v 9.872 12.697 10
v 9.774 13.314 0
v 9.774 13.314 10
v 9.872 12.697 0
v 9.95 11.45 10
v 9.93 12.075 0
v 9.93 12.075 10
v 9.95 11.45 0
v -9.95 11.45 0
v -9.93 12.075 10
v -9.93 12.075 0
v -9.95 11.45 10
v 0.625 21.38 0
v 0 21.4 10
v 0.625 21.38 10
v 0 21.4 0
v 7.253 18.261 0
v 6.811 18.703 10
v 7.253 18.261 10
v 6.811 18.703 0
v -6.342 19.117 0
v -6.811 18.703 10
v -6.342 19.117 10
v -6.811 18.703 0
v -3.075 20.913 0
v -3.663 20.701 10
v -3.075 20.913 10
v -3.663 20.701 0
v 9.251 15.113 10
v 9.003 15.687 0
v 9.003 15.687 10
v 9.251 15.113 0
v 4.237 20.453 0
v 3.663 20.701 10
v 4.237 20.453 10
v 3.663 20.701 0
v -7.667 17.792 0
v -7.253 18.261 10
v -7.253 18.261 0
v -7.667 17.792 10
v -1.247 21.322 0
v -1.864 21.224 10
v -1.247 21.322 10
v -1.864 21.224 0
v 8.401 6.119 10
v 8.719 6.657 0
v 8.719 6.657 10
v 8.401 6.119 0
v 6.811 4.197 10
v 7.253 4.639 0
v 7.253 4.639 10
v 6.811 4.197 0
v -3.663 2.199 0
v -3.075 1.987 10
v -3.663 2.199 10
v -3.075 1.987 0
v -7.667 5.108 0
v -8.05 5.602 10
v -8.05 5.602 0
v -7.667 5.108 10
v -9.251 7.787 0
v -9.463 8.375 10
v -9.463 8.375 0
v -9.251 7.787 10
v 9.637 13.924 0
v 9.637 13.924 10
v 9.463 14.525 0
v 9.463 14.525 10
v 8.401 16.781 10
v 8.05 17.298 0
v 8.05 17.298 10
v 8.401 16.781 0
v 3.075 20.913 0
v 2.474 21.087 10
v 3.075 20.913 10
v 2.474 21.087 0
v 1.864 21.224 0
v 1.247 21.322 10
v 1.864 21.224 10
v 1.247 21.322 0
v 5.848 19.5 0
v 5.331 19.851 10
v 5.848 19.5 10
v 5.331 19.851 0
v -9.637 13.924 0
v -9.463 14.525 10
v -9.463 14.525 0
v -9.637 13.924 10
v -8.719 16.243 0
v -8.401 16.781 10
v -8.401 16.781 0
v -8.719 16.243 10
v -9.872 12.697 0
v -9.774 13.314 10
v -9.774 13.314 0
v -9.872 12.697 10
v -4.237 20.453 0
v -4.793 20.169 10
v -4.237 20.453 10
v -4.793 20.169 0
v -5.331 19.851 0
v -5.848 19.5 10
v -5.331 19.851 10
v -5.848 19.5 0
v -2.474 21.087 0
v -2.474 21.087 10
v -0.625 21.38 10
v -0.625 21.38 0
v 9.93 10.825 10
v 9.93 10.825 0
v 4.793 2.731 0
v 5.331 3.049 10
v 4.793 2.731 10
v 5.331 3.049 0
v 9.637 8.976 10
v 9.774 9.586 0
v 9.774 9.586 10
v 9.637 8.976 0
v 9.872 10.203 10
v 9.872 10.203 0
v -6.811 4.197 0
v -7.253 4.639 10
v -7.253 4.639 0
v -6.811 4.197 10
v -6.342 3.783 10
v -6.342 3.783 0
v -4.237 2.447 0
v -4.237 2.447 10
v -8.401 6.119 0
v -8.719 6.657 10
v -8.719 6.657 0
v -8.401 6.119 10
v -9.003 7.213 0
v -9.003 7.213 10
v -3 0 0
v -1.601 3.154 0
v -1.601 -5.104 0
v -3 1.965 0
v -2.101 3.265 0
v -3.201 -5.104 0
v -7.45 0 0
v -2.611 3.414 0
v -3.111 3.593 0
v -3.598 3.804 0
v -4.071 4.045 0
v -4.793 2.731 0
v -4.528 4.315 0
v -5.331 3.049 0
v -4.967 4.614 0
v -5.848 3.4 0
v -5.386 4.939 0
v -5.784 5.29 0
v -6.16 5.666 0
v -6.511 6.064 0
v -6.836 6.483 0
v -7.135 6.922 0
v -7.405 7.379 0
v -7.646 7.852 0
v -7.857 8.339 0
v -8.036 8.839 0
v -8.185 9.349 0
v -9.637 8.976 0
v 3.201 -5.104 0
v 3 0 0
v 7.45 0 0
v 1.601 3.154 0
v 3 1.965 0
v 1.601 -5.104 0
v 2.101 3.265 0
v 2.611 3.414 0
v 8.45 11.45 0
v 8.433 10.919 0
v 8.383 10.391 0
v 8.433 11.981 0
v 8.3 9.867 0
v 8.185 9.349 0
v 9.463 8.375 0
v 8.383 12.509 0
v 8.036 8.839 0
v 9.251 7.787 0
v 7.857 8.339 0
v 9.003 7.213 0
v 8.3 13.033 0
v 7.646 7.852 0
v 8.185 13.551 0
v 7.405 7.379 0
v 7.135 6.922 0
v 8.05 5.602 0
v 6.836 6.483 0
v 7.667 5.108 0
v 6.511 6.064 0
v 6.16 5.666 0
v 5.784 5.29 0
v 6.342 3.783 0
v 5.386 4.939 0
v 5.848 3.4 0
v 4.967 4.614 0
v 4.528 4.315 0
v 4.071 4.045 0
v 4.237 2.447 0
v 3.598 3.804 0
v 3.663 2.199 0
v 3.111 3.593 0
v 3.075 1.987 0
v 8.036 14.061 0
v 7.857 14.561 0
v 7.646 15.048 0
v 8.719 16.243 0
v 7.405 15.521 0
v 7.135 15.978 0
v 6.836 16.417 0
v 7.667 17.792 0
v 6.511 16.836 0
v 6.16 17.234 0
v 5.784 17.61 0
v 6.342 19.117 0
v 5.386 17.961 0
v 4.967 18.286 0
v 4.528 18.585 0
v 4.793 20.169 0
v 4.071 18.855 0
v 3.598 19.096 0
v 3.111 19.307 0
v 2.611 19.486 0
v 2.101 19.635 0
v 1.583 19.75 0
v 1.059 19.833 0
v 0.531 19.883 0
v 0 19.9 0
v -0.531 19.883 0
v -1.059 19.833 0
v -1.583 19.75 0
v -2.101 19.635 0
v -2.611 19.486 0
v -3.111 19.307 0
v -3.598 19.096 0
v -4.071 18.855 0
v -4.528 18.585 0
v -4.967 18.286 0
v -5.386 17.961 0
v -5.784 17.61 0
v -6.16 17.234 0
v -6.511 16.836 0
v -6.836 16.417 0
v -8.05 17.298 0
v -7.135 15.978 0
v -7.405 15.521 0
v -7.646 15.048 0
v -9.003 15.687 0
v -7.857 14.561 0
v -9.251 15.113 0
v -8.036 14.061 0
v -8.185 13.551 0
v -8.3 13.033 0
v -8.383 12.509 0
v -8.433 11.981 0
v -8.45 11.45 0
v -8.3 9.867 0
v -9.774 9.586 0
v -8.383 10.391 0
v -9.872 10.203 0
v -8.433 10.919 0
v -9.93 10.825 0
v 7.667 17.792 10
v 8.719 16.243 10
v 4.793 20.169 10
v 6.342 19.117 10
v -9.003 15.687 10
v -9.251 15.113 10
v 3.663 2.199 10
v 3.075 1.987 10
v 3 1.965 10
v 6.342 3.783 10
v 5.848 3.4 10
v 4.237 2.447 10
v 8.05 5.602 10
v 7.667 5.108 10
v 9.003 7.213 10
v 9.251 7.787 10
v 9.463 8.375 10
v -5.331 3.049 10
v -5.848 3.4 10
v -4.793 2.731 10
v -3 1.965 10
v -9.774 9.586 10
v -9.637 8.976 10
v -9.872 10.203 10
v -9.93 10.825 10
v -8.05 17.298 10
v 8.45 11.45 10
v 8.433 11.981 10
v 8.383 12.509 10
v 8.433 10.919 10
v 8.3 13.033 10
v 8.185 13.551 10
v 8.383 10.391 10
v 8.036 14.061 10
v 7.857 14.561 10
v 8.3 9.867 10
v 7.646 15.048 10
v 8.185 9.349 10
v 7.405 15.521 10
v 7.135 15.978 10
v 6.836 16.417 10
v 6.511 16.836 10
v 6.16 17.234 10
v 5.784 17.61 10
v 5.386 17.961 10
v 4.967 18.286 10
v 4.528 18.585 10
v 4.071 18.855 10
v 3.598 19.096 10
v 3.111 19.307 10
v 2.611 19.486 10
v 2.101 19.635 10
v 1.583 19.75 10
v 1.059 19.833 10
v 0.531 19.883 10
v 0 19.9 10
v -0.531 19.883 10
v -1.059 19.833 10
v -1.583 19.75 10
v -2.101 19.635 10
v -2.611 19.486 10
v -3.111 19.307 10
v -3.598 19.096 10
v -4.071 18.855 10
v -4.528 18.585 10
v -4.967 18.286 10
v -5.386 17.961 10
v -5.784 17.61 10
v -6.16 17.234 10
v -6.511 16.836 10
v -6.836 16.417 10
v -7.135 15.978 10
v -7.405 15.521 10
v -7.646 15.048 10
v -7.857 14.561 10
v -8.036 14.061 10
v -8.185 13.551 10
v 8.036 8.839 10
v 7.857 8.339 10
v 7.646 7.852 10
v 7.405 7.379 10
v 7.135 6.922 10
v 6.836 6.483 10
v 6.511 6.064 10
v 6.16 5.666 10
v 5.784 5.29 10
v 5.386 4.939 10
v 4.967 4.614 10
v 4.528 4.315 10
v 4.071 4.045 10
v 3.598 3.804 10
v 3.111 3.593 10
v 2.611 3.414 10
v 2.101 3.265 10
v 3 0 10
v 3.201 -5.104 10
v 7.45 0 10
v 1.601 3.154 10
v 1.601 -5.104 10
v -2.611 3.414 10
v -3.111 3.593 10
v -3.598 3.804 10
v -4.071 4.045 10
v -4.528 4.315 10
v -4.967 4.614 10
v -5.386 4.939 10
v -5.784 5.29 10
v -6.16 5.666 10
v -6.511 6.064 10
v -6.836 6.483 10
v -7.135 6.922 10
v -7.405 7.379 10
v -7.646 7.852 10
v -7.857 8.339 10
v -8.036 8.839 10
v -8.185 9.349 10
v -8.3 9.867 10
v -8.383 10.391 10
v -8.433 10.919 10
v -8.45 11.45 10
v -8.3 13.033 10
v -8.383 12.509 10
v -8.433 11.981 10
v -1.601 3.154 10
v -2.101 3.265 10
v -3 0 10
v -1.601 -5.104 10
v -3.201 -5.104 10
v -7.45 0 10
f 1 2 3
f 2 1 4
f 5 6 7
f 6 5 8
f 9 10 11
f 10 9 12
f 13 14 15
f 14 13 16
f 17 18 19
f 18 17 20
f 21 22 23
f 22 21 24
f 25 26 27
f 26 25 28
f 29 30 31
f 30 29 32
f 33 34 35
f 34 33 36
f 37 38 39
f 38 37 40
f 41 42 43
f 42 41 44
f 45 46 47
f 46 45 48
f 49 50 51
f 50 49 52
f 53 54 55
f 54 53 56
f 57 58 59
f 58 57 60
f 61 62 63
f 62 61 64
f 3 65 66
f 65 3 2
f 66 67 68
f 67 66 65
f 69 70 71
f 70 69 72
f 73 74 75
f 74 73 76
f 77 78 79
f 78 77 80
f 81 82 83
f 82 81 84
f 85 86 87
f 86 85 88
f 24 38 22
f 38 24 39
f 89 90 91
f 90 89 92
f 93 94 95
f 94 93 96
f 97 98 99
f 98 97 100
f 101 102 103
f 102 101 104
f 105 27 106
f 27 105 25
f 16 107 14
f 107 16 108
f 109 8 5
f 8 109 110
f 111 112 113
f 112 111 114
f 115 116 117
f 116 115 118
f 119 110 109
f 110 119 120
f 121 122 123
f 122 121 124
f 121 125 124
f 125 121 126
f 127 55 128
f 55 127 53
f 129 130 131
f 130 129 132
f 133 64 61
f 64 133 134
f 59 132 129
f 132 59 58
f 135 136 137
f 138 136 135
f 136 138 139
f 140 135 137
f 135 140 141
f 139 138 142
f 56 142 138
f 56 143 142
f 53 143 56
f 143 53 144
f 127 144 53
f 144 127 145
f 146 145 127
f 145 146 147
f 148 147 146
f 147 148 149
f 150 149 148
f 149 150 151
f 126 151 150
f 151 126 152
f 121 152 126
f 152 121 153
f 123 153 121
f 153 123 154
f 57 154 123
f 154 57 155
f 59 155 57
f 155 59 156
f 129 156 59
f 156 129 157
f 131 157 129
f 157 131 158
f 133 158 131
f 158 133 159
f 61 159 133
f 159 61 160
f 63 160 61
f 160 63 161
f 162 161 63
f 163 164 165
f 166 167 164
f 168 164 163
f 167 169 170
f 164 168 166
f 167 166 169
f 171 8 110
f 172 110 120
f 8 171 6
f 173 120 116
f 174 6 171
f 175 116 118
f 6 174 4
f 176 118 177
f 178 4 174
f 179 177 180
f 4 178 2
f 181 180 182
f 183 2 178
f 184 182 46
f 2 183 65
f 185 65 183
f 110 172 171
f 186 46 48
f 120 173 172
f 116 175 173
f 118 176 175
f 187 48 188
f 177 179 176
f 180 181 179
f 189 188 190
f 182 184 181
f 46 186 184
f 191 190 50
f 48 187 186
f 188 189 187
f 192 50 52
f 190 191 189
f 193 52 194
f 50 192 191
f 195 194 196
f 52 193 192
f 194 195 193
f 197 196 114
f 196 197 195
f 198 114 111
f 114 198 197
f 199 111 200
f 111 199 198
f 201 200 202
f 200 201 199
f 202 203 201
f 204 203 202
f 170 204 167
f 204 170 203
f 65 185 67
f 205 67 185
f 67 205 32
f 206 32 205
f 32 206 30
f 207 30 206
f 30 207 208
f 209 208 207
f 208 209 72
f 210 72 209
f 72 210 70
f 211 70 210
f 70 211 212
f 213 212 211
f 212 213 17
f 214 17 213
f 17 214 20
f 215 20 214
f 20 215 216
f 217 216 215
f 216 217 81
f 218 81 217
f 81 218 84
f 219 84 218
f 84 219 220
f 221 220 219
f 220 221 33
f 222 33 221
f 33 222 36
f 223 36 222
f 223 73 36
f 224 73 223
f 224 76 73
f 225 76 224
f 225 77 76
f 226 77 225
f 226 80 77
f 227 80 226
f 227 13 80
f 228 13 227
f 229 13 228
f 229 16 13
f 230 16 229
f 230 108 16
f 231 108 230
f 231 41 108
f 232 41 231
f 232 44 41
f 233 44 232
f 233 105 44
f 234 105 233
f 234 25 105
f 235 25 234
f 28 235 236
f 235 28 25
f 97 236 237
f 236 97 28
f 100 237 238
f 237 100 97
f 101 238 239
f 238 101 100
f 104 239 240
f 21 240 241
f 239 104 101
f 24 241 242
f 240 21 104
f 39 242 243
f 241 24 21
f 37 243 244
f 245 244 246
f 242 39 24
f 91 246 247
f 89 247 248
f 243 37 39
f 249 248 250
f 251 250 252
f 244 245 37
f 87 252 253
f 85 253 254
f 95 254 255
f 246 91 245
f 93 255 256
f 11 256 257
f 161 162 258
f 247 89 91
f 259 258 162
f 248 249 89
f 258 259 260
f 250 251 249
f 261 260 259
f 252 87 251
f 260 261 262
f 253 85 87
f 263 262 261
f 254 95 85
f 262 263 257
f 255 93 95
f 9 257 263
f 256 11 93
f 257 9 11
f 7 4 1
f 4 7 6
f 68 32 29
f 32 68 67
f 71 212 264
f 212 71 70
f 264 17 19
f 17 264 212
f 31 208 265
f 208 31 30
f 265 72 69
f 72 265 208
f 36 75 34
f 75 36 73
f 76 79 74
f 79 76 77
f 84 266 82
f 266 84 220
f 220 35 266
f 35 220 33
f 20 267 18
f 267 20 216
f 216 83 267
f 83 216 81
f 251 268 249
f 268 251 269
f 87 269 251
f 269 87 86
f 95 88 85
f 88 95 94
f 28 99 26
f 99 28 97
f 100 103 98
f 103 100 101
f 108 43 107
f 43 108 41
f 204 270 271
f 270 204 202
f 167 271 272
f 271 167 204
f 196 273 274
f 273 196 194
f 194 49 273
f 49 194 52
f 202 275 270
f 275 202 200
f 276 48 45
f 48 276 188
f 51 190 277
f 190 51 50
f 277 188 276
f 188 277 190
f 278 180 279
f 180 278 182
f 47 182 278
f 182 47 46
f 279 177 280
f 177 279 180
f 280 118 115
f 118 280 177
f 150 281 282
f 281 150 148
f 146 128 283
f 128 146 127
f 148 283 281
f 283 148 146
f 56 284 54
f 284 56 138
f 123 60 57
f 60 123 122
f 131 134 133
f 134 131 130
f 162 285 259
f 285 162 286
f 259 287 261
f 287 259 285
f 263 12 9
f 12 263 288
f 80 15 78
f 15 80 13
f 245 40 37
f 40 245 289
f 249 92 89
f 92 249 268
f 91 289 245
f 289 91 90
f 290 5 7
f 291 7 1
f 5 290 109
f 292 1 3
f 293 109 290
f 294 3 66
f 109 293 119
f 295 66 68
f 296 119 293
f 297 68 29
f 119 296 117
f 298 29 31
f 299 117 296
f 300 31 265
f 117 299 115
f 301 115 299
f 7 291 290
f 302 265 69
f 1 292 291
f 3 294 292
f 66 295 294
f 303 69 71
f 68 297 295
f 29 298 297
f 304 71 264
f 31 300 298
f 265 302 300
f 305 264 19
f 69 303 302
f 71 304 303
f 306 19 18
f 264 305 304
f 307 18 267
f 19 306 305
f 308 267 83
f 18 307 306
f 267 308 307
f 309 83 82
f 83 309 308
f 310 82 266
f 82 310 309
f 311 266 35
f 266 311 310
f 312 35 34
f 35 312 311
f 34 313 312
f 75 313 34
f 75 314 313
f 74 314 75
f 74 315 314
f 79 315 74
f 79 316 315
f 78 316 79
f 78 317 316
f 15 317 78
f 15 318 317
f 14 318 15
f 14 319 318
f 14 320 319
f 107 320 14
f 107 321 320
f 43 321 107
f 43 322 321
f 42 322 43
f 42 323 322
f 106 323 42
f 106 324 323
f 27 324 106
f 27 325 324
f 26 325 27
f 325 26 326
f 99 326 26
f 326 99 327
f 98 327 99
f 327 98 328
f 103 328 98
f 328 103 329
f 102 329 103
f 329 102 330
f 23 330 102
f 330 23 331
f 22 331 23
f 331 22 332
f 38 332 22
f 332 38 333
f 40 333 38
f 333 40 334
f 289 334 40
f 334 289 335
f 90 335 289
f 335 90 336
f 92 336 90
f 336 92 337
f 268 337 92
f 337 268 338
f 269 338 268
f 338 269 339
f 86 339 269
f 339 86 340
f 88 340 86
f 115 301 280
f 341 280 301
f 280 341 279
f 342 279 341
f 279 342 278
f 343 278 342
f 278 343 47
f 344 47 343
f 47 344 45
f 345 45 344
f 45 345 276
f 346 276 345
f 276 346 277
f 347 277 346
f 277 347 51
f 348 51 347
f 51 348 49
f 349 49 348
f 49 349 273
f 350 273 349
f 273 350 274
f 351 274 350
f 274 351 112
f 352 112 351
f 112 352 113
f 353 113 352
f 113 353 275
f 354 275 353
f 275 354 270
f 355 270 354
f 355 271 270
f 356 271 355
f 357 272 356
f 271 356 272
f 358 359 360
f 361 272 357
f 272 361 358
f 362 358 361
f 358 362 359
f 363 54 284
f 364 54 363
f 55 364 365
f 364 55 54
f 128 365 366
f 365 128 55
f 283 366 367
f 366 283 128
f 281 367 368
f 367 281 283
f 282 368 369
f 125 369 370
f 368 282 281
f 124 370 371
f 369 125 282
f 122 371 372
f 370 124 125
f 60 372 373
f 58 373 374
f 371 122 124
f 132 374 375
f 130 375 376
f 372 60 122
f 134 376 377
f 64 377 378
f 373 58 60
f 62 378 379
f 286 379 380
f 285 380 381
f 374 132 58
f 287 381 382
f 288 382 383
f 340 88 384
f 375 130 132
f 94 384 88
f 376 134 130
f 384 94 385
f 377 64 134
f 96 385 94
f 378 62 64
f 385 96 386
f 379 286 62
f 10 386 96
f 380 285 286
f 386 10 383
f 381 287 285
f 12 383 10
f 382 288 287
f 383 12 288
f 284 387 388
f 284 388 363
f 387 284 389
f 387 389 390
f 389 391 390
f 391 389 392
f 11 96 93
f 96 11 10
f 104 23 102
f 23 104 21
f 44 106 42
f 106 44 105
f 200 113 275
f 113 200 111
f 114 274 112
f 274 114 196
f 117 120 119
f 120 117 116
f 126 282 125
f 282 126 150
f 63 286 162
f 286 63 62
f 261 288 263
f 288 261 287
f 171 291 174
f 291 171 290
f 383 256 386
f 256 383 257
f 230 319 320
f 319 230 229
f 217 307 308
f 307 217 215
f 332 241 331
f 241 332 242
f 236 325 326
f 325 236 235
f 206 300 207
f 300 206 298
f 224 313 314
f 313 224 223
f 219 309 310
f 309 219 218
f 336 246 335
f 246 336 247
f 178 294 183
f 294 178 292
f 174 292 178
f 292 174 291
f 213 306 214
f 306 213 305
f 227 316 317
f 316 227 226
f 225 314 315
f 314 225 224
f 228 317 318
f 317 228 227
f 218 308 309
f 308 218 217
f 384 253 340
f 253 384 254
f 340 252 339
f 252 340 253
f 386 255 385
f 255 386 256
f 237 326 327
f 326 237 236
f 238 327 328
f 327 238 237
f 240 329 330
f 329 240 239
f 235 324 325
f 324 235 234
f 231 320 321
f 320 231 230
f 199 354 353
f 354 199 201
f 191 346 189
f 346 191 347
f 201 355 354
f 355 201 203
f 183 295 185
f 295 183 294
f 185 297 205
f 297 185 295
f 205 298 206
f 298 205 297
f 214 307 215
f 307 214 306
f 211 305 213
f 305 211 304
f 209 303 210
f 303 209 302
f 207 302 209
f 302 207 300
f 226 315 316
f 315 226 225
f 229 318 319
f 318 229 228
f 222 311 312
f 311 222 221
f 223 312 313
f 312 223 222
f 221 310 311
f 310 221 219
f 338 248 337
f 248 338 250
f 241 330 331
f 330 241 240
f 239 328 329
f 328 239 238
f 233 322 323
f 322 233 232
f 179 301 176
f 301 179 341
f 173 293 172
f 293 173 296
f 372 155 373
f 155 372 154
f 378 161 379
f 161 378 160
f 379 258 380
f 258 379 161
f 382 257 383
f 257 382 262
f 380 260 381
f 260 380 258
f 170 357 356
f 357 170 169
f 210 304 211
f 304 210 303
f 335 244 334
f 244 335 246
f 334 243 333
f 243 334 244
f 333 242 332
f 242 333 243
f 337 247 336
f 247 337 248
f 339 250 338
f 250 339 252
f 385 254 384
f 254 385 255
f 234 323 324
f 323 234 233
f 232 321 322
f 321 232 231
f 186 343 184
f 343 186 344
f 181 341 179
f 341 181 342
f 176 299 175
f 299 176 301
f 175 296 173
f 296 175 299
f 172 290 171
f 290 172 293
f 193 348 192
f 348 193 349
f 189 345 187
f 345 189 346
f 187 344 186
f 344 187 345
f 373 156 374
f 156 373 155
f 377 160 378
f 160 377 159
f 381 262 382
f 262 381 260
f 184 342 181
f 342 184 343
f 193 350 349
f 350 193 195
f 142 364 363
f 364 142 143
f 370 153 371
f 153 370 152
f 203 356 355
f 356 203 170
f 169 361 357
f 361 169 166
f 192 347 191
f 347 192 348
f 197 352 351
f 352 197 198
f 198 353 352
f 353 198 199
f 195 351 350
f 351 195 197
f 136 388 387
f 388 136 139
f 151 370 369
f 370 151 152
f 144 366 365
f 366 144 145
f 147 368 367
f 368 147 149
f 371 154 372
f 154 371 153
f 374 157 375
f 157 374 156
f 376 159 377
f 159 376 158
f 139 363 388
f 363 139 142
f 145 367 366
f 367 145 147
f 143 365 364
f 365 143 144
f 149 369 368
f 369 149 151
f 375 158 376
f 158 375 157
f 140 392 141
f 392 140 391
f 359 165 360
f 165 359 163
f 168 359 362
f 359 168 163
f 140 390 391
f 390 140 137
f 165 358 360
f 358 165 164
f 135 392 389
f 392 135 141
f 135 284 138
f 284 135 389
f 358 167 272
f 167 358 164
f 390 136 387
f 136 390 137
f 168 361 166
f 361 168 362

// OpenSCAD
$fn=100;

in=25.4;

w=0.256*in-.1;
d=0.323*in-.1-3;
w_plus=15-.1;
slot=6;

echo(d);

difference(){
    union(){
linear_extrude(height=10)
    polygon(points=[
        [-w_plus/2, 0],
        [w_plus/2, 0],
        [w/2, -d],
        [-w/2, -d],
    ]);
        translate([0,1.25,5])
        cube([slot,2.5,10],center=true);
        translate([0,w_plus/2+4,0])
        difference(){
            cylinder(10,d=w_plus+5);
            translate([0,0,-1])
            cylinder(15,d=w_plus+2);
        }
    }
    translate([0,2,1])
    cube([w/2,d*3,20],center=true);
    
}
